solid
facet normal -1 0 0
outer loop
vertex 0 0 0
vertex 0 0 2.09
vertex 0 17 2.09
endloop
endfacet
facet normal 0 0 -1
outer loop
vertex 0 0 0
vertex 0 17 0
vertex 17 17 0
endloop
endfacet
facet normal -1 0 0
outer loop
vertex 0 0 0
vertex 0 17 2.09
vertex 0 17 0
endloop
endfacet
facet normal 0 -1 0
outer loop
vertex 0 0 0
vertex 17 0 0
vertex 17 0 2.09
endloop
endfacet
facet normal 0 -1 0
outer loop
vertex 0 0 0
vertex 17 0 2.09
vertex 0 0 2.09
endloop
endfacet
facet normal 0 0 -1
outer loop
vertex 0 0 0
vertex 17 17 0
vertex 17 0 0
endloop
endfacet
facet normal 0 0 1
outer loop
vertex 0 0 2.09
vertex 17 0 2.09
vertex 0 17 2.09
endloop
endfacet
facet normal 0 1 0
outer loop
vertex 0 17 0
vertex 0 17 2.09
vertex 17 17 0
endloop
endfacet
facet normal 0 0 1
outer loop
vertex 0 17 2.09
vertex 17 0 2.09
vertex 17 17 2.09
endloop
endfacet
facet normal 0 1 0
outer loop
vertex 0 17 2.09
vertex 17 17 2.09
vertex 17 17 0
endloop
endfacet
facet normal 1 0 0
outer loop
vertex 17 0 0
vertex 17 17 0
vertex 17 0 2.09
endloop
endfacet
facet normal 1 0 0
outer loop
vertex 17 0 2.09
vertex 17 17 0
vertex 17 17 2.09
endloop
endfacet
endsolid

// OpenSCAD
/* Warning, this is a very basic generator with a lot of approximation 
input data : [FBGA, 9DC, 17x17x2.09mm, 395, , A, C04-25133A]
generated by com.zoubworld.electronics.cad.model3d.Basic
Date : Sun Feb 15 10:50:49 CET 2026
*/

//body
color("black")
translate([0,0,0])
cube([17.0,17.0,2.09], center=false);
